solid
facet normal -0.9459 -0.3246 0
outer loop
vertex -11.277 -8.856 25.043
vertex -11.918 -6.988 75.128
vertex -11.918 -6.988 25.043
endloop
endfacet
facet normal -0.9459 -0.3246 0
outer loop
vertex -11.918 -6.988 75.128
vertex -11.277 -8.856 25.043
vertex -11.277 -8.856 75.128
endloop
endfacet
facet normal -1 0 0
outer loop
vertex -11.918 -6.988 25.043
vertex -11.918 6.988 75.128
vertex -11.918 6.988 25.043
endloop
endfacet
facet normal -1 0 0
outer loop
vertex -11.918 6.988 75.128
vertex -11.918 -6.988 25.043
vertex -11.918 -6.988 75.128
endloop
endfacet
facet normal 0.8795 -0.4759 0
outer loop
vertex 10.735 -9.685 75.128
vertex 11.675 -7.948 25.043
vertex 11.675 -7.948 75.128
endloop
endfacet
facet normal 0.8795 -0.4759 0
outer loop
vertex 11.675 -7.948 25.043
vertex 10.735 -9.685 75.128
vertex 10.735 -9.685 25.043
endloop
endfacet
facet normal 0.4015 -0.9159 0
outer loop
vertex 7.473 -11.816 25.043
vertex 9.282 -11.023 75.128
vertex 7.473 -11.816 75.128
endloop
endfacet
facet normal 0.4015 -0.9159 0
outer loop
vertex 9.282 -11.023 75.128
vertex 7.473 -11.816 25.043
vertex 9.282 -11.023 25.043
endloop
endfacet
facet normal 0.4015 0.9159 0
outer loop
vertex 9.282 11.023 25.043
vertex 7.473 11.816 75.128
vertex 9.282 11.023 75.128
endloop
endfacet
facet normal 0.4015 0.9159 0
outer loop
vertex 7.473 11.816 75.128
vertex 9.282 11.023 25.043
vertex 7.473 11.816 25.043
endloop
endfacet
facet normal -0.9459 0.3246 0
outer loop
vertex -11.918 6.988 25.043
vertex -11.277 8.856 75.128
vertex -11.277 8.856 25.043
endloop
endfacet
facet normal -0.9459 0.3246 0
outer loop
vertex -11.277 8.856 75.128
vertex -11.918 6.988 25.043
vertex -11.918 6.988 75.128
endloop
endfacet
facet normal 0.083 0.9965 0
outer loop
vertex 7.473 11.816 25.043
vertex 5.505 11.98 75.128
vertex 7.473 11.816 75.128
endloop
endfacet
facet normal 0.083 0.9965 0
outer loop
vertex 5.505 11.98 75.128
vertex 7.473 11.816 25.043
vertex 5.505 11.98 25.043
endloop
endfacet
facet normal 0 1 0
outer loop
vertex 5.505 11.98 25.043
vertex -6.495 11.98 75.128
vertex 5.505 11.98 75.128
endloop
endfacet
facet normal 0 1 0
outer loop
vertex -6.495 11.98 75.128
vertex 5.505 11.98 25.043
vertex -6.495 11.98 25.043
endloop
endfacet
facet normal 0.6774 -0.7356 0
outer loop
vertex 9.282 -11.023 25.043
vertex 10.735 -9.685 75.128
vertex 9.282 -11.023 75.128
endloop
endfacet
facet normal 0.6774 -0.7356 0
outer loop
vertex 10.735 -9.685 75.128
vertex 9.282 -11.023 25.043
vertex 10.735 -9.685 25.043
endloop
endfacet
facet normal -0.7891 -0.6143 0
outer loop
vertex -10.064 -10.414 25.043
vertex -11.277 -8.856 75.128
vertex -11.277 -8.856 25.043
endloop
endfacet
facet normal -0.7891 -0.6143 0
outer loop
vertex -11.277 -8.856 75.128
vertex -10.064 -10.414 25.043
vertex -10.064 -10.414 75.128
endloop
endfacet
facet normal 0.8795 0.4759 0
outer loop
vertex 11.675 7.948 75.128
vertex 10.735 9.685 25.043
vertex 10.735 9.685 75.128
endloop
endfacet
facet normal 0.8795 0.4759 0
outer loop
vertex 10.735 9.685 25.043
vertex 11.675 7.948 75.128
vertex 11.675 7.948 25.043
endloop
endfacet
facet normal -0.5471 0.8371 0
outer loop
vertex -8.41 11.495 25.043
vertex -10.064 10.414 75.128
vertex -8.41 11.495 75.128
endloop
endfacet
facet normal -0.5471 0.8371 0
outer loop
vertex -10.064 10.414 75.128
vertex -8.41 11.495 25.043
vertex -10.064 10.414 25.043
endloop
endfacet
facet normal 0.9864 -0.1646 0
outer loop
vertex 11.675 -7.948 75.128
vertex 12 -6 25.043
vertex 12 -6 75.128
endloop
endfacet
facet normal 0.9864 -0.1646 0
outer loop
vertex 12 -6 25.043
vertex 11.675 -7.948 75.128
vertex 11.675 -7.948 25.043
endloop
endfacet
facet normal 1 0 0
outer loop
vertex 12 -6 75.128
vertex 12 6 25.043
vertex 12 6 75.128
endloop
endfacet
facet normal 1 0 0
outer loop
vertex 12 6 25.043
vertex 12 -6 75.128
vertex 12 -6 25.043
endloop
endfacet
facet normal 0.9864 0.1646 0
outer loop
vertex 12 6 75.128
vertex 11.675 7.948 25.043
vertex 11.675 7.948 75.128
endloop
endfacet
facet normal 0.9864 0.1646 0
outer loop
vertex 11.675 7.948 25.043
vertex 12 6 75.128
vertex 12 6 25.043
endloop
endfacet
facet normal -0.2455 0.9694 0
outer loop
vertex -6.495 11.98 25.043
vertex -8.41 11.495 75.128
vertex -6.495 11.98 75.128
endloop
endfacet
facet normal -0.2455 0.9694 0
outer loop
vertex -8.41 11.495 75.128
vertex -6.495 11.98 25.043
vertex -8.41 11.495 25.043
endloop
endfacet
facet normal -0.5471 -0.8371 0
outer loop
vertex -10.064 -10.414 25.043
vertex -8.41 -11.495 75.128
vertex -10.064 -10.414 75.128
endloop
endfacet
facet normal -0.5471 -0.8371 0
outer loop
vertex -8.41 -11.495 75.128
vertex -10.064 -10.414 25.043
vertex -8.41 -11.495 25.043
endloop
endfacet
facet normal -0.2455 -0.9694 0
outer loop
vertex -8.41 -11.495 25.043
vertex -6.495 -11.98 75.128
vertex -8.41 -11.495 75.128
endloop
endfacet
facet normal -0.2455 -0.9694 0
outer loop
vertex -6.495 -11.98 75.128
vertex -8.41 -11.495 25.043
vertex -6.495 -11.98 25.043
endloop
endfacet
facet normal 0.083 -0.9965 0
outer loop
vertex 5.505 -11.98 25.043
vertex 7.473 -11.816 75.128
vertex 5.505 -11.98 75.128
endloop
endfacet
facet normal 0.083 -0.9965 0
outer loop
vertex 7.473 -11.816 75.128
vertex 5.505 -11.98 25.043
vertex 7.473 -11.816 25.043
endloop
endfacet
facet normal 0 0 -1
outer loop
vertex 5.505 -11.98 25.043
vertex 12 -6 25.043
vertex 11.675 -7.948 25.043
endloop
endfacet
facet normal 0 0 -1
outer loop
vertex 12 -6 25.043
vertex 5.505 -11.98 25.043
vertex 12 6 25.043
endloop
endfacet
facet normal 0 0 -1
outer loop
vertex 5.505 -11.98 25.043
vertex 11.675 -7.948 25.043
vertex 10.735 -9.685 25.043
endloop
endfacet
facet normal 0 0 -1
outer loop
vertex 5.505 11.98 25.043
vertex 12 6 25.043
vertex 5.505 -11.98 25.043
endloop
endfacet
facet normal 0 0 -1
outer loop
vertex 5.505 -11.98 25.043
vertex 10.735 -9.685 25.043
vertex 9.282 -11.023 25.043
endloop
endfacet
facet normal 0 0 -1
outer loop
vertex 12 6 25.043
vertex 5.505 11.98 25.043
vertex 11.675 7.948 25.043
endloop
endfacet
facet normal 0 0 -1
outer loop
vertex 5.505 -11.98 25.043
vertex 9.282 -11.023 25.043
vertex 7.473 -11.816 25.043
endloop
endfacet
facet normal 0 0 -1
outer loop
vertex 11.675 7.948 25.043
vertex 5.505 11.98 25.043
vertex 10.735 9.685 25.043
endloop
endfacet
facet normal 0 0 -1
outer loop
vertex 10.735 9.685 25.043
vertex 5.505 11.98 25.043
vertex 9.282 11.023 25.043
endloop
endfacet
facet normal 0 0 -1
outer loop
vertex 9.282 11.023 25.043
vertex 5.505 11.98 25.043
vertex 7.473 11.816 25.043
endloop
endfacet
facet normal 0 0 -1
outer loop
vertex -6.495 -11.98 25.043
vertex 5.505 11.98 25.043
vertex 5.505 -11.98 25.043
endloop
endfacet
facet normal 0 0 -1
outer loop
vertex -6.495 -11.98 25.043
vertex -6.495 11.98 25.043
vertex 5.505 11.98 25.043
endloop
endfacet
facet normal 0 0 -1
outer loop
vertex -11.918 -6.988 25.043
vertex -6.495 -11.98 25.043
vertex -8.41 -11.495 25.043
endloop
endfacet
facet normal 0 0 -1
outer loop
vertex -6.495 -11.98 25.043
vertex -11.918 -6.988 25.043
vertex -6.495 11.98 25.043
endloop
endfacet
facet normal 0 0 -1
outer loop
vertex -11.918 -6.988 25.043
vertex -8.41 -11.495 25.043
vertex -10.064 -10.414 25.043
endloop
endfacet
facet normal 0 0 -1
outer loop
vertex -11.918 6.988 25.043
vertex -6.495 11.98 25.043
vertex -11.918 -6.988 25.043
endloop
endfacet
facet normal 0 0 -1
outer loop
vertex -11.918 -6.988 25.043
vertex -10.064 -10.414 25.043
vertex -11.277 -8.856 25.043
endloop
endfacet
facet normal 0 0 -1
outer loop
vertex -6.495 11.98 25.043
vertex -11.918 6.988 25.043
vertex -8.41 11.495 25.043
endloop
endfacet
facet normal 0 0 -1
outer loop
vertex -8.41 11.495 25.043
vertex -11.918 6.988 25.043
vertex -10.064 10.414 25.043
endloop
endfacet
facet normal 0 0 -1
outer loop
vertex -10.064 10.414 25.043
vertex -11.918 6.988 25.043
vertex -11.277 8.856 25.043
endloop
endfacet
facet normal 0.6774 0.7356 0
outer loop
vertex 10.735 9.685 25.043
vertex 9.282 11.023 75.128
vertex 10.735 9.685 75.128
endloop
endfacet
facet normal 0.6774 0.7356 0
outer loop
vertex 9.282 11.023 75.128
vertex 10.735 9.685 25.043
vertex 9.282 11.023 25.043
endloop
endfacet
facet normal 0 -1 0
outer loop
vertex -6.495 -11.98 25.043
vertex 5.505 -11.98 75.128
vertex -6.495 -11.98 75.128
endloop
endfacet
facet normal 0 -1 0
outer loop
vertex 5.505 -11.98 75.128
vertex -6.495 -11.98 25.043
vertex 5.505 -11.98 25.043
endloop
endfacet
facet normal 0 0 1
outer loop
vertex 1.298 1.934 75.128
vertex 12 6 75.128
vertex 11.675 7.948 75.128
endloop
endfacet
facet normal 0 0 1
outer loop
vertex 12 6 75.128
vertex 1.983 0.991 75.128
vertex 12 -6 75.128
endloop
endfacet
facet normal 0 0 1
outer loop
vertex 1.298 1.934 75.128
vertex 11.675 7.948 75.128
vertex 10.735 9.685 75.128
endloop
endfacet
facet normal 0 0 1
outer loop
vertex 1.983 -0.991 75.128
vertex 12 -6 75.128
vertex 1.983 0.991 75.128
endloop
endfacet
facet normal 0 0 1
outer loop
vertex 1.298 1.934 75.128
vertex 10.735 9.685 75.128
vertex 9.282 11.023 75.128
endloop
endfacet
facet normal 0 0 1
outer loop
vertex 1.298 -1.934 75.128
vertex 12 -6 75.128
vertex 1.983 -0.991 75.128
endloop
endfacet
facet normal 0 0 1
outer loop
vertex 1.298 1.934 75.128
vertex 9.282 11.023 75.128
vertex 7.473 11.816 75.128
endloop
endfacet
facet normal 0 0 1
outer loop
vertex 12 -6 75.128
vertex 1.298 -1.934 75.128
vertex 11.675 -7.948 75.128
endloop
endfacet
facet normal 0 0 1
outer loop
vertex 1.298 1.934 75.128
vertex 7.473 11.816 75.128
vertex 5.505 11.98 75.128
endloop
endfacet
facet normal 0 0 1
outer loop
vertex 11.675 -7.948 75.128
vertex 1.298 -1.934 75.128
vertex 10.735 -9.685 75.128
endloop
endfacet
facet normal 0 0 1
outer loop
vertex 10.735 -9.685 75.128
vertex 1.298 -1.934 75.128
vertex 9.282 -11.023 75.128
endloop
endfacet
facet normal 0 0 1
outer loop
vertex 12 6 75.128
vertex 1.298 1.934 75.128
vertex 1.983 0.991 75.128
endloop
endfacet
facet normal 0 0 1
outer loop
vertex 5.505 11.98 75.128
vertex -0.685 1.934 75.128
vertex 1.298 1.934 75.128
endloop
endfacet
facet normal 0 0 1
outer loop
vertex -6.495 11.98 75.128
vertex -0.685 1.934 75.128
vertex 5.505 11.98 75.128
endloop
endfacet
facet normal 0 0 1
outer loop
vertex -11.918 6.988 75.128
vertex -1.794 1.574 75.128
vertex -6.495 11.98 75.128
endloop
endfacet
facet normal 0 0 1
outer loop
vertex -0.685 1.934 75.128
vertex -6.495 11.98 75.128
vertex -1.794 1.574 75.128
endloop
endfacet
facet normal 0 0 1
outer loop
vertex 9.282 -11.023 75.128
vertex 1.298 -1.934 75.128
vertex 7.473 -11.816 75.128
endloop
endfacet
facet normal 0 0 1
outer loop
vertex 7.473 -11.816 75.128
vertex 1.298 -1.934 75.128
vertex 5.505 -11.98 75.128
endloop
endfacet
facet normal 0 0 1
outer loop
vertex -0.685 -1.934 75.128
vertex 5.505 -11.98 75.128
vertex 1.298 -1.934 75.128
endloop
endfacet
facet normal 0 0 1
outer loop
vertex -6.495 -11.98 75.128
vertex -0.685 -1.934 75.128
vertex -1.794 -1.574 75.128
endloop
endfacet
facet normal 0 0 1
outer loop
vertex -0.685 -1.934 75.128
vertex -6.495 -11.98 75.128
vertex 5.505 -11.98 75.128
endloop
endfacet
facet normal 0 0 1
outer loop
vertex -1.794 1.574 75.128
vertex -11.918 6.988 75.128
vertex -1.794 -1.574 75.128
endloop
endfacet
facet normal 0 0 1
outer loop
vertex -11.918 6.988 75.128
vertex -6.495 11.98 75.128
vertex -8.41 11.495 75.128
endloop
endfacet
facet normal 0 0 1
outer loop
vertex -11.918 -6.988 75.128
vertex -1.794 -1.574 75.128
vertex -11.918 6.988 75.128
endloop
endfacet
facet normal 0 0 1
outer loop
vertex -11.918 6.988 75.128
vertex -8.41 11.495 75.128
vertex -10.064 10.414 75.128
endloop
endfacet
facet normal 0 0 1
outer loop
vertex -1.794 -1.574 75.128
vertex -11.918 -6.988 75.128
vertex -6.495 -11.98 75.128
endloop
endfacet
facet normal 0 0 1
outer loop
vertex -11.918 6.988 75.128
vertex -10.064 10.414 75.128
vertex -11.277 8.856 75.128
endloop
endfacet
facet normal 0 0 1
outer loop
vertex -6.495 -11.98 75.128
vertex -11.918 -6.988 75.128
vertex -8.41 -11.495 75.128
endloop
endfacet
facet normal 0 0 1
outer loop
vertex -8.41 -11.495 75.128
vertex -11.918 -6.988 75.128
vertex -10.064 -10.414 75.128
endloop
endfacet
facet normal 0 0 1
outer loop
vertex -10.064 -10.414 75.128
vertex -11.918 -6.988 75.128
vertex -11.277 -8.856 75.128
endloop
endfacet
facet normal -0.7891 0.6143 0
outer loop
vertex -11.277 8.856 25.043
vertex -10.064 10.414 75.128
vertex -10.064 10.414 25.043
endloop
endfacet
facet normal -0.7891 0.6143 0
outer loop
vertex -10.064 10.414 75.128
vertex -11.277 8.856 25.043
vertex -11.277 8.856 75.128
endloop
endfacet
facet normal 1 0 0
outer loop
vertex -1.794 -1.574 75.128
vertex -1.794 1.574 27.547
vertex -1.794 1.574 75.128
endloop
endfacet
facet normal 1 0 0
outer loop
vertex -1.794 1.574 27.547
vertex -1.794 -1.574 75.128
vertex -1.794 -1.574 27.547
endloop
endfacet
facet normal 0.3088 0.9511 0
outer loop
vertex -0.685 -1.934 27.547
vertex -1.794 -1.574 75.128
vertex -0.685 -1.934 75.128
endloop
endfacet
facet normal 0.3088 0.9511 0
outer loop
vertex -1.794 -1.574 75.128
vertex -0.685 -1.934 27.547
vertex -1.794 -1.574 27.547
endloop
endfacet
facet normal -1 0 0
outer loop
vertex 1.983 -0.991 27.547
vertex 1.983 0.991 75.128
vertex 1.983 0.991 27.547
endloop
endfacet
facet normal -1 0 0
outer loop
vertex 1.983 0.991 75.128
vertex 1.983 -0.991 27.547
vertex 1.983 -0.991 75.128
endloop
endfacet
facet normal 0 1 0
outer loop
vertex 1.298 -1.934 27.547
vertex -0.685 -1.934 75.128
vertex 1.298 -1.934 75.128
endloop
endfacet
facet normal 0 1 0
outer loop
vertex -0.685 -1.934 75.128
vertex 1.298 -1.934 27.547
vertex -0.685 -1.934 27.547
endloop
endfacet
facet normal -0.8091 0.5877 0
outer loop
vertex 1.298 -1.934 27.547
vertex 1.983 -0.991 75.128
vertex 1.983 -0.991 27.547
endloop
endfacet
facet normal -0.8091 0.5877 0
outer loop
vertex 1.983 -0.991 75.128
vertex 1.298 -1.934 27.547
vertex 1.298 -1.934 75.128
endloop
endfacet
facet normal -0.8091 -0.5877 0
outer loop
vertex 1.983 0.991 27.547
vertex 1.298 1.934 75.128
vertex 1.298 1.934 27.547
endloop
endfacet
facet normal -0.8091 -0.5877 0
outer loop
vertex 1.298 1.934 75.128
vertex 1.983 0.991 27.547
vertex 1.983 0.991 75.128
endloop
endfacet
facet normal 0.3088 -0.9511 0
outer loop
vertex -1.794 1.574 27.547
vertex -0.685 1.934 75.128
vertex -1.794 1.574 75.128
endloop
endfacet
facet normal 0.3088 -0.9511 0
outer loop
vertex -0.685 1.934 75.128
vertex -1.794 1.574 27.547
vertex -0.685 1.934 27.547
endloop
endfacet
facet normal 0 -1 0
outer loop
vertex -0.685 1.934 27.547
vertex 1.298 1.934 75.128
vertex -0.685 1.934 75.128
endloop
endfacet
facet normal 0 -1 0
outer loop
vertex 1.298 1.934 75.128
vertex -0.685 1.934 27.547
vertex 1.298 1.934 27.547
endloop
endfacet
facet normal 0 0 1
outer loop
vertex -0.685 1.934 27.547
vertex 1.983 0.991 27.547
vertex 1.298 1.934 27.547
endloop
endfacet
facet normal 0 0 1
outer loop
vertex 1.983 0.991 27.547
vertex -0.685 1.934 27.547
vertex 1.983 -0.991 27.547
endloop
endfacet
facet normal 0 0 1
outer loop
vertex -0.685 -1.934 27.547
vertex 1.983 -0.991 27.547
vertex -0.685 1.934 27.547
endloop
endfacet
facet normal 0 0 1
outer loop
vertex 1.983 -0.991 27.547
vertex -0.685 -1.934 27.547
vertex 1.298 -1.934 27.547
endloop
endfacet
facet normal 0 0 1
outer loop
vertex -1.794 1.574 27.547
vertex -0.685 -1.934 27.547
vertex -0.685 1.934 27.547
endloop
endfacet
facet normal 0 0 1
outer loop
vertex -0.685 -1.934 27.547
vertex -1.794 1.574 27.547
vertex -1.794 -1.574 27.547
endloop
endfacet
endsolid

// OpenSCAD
/* doodle-meta {"version":1,"parameters":{"width":{"label":"Overall width","description":"Changes the body width","unit":"mm","feature":"body_width"},"depth":{"label":"Overall depth","description":"Changes the body depth","unit":"mm","feature":"body_depth"},"height":{"label":"Overall height","description":"Changes the body height","unit":"mm","feature":"body_height"},"corner_radius":{"label":"Corner radius","description":"Changes the outer corner radius","unit":"mm","feature":"body_corner"},"wall_thickness":{"label":"Wall thickness","description":"Changes the side wall thickness","unit":"mm","feature":"wall"},"floor_thickness":{"label":"Floor thickness","description":"Changes the bottom floor thickness","unit":"mm","feature":"floor"}},"features":{"body_width":{"kind":"dimension","axis":"x","label":"Overall width"},"body_depth":{"kind":"dimension","axis":"y","label":"Overall depth"},"body_height":{"kind":"dimension","axis":"z","label":"Overall height"},"body_corner":{"kind":"region","label":"Corner radius","min":[{"parameter":"width","scale":0.5,"offset":0},{"parameter":"depth","scale":0.5,"offset":0},0],"max":[{"parameter":"width","scale":0.5,"offset":0},{"parameter":"depth","scale":0.5,"offset":0},{"parameter":"height","scale":1,"offset":0}]},"wall":{"kind":"region","label":"Wall thickness","min":[0,0,0],[{"parameter":"width","scale":0.5,"offset":0},{"parameter":"depth","scale":0.5,"offset":0},{"parameter":"height","scale":1,"offset":0}]},"floor":{"kind":"region","label":"Floor thickness","min":[0,0,0],[{"parameter":"width","scale":0.5,"offset":0},{"parameter":"depth","scale":0.5,"offset":0},{"parameter":"floor_thickness","scale":1,"offset":0}]}}} */

width = 150.25668850953713;
depth = 100.17112567302475;
height = 50.08556283651237;
corner_radius = 6;
wall_thickness = 5.008556283651237;
floor_thickness = 5.008556283651237;

eps = 0.01;

module rounded_rect(w, d, r, h) {
    hull() {
        translate([ r,  r, 0]) cylinder(h=h, r=r, center=true);
        translate([-r,  r, 0]) cylinder(h=h, r=r, center=true);
        translate([-r, -r, 0]) cylinder(h=h, r=r, center=true);
        translate([ r, -r, 0]) cylinder(h=h, r=r, center=true);
    }
}

module tray() {
    difference() {
        // Outer shell
        translate([0, 0, height/2])
            rounded_rect(width, depth, corner_radius, height);
        
        // Inner cavity
        translate([0, 0, height/2 + floor_thickness/2])
            rounded_rect(width - 2*wall_thickness, depth - 2*wall_thickness, corner_radius - wall_thickness, height);
    }
}

// Center the tray on the XY plane and place it on the build plate (Z=0)
translate([0, 0, height/2])
    tray();
